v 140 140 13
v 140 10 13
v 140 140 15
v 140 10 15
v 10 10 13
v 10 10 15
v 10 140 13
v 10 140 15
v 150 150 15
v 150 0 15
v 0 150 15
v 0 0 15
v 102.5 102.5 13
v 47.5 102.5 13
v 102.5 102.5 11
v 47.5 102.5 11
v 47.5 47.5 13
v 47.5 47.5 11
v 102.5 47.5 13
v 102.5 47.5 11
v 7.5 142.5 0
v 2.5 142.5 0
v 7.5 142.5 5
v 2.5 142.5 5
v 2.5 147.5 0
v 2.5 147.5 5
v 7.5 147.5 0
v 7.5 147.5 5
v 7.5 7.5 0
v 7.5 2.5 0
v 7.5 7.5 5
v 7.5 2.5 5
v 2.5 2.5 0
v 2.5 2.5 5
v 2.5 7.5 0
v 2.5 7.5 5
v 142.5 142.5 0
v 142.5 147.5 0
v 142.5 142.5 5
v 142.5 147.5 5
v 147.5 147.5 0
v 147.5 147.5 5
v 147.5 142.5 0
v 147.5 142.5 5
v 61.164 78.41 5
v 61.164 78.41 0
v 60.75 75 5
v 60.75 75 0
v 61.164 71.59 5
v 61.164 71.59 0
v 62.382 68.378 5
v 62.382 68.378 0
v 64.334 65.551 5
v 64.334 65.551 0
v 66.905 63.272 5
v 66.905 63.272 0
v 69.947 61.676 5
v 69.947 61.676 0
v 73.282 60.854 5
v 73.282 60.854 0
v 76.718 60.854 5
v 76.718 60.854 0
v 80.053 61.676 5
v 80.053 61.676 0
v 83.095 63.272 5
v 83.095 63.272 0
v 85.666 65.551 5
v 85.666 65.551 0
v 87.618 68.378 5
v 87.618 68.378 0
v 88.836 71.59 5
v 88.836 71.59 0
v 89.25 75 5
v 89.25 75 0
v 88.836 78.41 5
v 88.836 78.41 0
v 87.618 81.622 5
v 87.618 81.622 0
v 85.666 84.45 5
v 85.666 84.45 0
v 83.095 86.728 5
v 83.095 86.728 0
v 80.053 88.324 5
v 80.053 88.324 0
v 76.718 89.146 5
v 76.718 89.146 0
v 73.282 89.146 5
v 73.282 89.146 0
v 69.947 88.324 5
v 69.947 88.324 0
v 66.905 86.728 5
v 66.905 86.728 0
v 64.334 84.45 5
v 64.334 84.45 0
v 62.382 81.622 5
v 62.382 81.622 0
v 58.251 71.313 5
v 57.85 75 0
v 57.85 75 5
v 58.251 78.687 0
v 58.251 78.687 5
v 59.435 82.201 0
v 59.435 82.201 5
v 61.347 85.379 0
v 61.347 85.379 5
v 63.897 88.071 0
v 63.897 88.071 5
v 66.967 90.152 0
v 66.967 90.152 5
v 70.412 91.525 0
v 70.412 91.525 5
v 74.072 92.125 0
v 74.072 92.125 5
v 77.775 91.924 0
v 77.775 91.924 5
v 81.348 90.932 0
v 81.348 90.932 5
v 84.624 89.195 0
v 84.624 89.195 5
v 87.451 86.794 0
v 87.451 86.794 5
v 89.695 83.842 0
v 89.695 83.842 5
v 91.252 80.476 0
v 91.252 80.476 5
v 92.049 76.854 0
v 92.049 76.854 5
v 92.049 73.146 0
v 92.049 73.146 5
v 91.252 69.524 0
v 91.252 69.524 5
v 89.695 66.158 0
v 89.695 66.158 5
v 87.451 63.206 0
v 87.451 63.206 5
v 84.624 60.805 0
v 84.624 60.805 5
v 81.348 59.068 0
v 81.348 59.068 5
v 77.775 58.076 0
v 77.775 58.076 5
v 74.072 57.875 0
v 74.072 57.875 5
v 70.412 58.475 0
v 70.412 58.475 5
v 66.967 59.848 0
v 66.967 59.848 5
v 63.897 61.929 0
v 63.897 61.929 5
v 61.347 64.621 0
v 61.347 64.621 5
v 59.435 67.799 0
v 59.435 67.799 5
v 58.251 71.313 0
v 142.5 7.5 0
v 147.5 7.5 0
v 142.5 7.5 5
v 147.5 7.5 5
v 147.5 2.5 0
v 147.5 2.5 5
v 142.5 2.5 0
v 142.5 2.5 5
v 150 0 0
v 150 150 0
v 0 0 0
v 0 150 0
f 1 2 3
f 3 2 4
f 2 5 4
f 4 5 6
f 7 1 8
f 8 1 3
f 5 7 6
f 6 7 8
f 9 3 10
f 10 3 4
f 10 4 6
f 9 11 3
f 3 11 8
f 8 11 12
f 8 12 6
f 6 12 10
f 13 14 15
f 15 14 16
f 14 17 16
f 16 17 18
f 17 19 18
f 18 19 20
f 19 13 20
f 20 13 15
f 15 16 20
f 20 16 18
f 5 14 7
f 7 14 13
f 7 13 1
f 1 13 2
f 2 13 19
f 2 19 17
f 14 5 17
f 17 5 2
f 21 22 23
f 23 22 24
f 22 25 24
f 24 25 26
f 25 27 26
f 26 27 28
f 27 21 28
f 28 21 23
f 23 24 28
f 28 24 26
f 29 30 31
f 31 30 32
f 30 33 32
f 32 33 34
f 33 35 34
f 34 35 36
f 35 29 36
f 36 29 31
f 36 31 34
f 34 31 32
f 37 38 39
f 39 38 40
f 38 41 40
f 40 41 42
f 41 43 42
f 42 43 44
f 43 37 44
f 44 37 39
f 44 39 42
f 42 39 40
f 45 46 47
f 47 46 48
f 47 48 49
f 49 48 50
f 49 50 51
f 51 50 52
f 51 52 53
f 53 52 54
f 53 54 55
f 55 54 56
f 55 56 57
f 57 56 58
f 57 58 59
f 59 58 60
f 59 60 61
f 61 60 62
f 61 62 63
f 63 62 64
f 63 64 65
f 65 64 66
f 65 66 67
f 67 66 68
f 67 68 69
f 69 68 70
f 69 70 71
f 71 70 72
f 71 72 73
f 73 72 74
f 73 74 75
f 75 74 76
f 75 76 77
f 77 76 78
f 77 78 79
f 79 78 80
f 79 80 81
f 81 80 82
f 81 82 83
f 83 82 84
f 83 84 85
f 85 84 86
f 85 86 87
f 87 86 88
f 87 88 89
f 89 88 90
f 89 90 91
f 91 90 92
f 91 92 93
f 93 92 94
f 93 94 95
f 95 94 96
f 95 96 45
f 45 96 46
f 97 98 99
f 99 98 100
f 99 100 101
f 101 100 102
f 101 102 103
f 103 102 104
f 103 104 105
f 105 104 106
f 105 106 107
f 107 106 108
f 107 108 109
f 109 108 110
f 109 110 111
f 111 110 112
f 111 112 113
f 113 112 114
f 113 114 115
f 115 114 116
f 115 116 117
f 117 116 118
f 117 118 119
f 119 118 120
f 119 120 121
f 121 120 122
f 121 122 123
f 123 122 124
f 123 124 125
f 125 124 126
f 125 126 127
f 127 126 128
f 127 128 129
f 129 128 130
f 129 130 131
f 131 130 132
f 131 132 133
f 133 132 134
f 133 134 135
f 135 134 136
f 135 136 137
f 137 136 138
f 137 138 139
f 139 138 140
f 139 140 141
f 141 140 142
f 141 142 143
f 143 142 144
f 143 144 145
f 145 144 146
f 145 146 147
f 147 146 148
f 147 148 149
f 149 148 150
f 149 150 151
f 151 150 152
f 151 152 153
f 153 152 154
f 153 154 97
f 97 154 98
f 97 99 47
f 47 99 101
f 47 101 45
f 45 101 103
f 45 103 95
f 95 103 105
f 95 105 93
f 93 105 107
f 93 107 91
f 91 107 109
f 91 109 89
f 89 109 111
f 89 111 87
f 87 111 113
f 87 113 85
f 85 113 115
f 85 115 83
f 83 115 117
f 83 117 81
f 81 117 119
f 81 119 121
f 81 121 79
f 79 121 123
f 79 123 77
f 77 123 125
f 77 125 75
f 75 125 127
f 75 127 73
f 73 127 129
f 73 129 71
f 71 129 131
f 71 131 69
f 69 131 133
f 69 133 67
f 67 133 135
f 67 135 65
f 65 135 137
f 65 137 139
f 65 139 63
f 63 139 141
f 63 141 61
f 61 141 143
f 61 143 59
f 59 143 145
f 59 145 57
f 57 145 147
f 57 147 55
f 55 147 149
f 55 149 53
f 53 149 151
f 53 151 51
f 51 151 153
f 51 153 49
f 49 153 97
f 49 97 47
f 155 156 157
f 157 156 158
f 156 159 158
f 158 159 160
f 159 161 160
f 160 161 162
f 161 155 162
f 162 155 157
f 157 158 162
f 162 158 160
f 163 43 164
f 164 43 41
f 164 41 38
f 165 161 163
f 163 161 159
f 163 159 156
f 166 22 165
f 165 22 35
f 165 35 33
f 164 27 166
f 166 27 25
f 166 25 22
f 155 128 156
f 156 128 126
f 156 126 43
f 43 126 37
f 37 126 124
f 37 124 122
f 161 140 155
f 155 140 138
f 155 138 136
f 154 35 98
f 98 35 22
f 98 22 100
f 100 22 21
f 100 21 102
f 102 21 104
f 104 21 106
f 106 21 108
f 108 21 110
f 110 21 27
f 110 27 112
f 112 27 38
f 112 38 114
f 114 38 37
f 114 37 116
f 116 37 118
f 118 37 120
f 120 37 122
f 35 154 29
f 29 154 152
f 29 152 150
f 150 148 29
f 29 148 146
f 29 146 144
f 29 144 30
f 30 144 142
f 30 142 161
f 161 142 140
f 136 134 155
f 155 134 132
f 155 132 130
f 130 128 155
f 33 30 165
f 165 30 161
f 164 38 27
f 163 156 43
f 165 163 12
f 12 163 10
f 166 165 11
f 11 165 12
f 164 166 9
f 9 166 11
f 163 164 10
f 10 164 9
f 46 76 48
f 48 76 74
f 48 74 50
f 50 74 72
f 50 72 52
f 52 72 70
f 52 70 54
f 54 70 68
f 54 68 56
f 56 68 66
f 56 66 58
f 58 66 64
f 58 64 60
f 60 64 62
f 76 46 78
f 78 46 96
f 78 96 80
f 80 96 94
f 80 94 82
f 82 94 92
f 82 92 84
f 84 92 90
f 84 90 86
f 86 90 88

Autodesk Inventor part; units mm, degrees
ref_plane "YZ Plane" through (0, 0, 0) normal (1, 0, 0) x (0, 1, 0)
ref_plane "XZ Plane" through (0, 0, 0) normal (0, 1, 0) x (-1, 0, 0)
ref_plane "XY Plane" through (0, 0, 0) normal (0, 0, 1) x (1, 0, 0)
sketch "Sketch4" plane through (0, 0, 0) normal (0, 0, 1) x (1, 0, 0)
  line L0 (0, 0) -> (150, 0)
  line L1 (150, 0) -> (150, 150)
  line L2 (150, 150) -> (0, 150)
  line L3 (0, 150) -> (0, 0)
  dimension "d34" = 150
  dimension "d35" = 150
extrude "Extrusion4" add sketch "Sketch4" along normal blind 10
sketch "Sketch5" plane through (0, 0, 10) normal (0, 0, 1) x (1, 0, 0)
  line L0 (10, 10) -> (140, 10)
  line L1 (140, 10) -> (140, 140)
  line L2 (140, 140) -> (10, 140)
  line L3 (10, 140) -> (10, 10)
  point P0 (0, 0)
  dimension "d38" = 130
  dimension "d39" = 130
extrude "Extrusion5" cut sketch "Sketch5" against normal blind 2
sketch "Sketch6" plane through (0, 0, 0) normal (0, 0, -1) x (-1, 0, 0)
  circle A0 centre (-75, 75) radius 14.25
  circle A1 centre (-75, 75) radius 17.15
  line L0 (-147.5, 2.5) -> (-142.5, 2.5)
  line L1 (-142.5, 2.5) -> (-142.5, 7.5)
  line L2 (-142.5, 7.5) -> (-147.5, 7.5)
  line L3 (-147.5, 7.5) -> (-147.5, 2.5)
  line L4 (-2.5, 2.5) -> (-7.5, 2.5)
  line L5 (-7.5, 2.5) -> (-7.5, 7.5)
  line L6 (-7.5, 7.5) -> (-2.5, 7.5)
  line L7 (-2.5, 7.5) -> (-2.5, 2.5)
  line L8 (-147.5, 147.5) -> (-142.5, 147.5)
  line L9 (-142.5, 147.5) -> (-142.5, 142.5)
  line L10 (-142.5, 142.5) -> (-147.5, 142.5)
  line L11 (-147.5, 142.5) -> (-147.5, 147.5)
  line L12 (-2.5, 147.5) -> (-7.5, 147.5)
  line L13 (-7.5, 147.5) -> (-7.5, 142.5)
  line L14 (-7.5, 142.5) -> (-2.5, 142.5)
  line L15 (-2.5, 142.5) -> (-2.5, 147.5)
  point P0 (0, 0)
  dimension "d42" = 28.5
  dimension "d43" = 34.3
  dimension "d46" = 5
  dimension "d47" = 5
  dimension "d48" = 5
  dimension "d49" = 5
  dimension "d50" = 5
  dimension "d51" = 5
  dimension "d52" = 5
  dimension "d53" = 5
extrude "Extrusion7" cut sketch "Sketch6" against normal blind 5
sketch "Sketch7" plane through (0, 0, 8) normal (0, 0, 1) x (1, 0, 0)
  line L0 (47.5, 102.5) -> (102.5, 102.5)
  line L1 (102.5, 102.5) -> (102.5, 47.5)
  line L2 (102.5, 47.5) -> (47.5, 47.5)
  line L3 (47.5, 47.5) -> (47.5, 102.5)
  point P0 (0, 0)
  dimension "d58" = 55
  dimension "d59" = 55
extrude "Extrusion8" cut sketch "Sketch7" against normal blind 2
sketch "Sketch9" plane through (0, 0, 6) normal (0, 0, 1) x (1, 0, 0)
  line L0 (47.5, 47.5) -> (47.5, 102.5) projected
  line L1 (47.5, 47.5) -> (102.5, 47.5)
  line L2 (102.5, 47.5) -> (102.5, 102.5)
  line L3 (102.5, 102.5) -> (47.5, 102.5)
  line L4 (47.5, 102.5) -> (47.5, 47.5)
  point P0 (0, 0)
  dimension "d68" = 55
  dimension "d69" = 55
extrude "Extrusion10" add sketch "Sketch9" along normal blind 2
sketch "Sketch10" plane through (0, 0, 8) normal (0, 0, 1) x (1, 0, 0)
  line L0 (37.5, 37.5) -> (112.5, 37.5) projected
  line L1 (112.5, 37.5) -> (112.5, 112.5) projected
  line L2 (37.5, 37.5) -> (112.5, 37.5)
  line L3 (112.5, 37.5) -> (112.5, 112.5)
  line L4 (112.5, 112.5) -> (37.5, 112.5)
  line L5 (37.5, 112.5) -> (37.5, 37.5)
  point P0 (0, 0)
  dimension "d72" = 75
  dimension "d73" = 75
extrude "Extrusion11" add sketch "Sketch10" along normal blind 5
sketch "Sketch11" plane through (0, 0, 13) normal (0, 0, 1) x (1, 0, 0)
  line L0 (47.5, 47.5) -> (102.5, 47.5)
  line L1 (102.5, 47.5) -> (102.5, 102.5)
  line L2 (102.5, 102.5) -> (47.5, 102.5)
  line L3 (47.5, 102.5) -> (47.5, 47.5)
  point P0 (0, 0)
  dimension "d76" = 55
  dimension "d77" = 55
extrude "Extrusion12" cut sketch "Sketch11" against normal blind 2
sketch "Sketch12" plane through (0, 0, 11) normal (0, 0, 1) x (1, 0, 0)
  circle A0 centre (75, 75) radius 14.35
  circle A1 centre (75, 75) radius 17.15
  point P0 (0, 0)
sketch "Sketch13" plane through (0, 0, 8) normal (0, 0, 1) x (1, 0, 0)
  line L0 (140, 140) -> (140, 10) projected
  line L1 (10, 140) -> (140, 140)
  line L2 (140, 140) -> (140, 10)
  line L3 (140, 10) -> (10, 10)
  line L4 (10, 10) -> (10, 140)
  line L5 (37.5, 37.5) -> (37.5, 112.5) projected
  line L6 (112.5, 112.5) -> (112.5, 37.5) projected
  line L7 (37.5, 112.5) -> (112.5, 112.5)
  line L8 (112.5, 112.5) -> (112.5, 37.5)
  line L9 (112.5, 37.5) -> (37.5, 37.5)
  line L10 (37.5, 37.5) -> (37.5, 112.5)
  point P0 (0, 0)
extrude "Extrusion13" add sketch "Sketch13" along normal blind 5
sketch "Sketch15" plane through (0, 0, 10) normal (0, 0, 1) x (1, 0, 0)
  line L0 (0, 0) -> (150, 0)
  line L1 (150, 0) -> (150, 150)
  line L2 (150, 150) -> (0, 150)
  line L3 (0, 150) -> (0, 0)
  line L4 (10, 140) -> (10, 10) projected
  line L5 (10, 140) -> (140, 140)
  line L6 (140, 140) -> (140, 10)
  line L7 (140, 10) -> (10, 10)
  line L8 (10, 10) -> (10, 140)
  dimension "d86" = 150
  dimension "d87" = 150
  dimension "d88" = 130
  dimension "d89" = 130
extrude "Extrusion14" add sketch "Sketch15" along normal blind 5
properties part number "Elbow_Both_Marker_TestFit_V2"
